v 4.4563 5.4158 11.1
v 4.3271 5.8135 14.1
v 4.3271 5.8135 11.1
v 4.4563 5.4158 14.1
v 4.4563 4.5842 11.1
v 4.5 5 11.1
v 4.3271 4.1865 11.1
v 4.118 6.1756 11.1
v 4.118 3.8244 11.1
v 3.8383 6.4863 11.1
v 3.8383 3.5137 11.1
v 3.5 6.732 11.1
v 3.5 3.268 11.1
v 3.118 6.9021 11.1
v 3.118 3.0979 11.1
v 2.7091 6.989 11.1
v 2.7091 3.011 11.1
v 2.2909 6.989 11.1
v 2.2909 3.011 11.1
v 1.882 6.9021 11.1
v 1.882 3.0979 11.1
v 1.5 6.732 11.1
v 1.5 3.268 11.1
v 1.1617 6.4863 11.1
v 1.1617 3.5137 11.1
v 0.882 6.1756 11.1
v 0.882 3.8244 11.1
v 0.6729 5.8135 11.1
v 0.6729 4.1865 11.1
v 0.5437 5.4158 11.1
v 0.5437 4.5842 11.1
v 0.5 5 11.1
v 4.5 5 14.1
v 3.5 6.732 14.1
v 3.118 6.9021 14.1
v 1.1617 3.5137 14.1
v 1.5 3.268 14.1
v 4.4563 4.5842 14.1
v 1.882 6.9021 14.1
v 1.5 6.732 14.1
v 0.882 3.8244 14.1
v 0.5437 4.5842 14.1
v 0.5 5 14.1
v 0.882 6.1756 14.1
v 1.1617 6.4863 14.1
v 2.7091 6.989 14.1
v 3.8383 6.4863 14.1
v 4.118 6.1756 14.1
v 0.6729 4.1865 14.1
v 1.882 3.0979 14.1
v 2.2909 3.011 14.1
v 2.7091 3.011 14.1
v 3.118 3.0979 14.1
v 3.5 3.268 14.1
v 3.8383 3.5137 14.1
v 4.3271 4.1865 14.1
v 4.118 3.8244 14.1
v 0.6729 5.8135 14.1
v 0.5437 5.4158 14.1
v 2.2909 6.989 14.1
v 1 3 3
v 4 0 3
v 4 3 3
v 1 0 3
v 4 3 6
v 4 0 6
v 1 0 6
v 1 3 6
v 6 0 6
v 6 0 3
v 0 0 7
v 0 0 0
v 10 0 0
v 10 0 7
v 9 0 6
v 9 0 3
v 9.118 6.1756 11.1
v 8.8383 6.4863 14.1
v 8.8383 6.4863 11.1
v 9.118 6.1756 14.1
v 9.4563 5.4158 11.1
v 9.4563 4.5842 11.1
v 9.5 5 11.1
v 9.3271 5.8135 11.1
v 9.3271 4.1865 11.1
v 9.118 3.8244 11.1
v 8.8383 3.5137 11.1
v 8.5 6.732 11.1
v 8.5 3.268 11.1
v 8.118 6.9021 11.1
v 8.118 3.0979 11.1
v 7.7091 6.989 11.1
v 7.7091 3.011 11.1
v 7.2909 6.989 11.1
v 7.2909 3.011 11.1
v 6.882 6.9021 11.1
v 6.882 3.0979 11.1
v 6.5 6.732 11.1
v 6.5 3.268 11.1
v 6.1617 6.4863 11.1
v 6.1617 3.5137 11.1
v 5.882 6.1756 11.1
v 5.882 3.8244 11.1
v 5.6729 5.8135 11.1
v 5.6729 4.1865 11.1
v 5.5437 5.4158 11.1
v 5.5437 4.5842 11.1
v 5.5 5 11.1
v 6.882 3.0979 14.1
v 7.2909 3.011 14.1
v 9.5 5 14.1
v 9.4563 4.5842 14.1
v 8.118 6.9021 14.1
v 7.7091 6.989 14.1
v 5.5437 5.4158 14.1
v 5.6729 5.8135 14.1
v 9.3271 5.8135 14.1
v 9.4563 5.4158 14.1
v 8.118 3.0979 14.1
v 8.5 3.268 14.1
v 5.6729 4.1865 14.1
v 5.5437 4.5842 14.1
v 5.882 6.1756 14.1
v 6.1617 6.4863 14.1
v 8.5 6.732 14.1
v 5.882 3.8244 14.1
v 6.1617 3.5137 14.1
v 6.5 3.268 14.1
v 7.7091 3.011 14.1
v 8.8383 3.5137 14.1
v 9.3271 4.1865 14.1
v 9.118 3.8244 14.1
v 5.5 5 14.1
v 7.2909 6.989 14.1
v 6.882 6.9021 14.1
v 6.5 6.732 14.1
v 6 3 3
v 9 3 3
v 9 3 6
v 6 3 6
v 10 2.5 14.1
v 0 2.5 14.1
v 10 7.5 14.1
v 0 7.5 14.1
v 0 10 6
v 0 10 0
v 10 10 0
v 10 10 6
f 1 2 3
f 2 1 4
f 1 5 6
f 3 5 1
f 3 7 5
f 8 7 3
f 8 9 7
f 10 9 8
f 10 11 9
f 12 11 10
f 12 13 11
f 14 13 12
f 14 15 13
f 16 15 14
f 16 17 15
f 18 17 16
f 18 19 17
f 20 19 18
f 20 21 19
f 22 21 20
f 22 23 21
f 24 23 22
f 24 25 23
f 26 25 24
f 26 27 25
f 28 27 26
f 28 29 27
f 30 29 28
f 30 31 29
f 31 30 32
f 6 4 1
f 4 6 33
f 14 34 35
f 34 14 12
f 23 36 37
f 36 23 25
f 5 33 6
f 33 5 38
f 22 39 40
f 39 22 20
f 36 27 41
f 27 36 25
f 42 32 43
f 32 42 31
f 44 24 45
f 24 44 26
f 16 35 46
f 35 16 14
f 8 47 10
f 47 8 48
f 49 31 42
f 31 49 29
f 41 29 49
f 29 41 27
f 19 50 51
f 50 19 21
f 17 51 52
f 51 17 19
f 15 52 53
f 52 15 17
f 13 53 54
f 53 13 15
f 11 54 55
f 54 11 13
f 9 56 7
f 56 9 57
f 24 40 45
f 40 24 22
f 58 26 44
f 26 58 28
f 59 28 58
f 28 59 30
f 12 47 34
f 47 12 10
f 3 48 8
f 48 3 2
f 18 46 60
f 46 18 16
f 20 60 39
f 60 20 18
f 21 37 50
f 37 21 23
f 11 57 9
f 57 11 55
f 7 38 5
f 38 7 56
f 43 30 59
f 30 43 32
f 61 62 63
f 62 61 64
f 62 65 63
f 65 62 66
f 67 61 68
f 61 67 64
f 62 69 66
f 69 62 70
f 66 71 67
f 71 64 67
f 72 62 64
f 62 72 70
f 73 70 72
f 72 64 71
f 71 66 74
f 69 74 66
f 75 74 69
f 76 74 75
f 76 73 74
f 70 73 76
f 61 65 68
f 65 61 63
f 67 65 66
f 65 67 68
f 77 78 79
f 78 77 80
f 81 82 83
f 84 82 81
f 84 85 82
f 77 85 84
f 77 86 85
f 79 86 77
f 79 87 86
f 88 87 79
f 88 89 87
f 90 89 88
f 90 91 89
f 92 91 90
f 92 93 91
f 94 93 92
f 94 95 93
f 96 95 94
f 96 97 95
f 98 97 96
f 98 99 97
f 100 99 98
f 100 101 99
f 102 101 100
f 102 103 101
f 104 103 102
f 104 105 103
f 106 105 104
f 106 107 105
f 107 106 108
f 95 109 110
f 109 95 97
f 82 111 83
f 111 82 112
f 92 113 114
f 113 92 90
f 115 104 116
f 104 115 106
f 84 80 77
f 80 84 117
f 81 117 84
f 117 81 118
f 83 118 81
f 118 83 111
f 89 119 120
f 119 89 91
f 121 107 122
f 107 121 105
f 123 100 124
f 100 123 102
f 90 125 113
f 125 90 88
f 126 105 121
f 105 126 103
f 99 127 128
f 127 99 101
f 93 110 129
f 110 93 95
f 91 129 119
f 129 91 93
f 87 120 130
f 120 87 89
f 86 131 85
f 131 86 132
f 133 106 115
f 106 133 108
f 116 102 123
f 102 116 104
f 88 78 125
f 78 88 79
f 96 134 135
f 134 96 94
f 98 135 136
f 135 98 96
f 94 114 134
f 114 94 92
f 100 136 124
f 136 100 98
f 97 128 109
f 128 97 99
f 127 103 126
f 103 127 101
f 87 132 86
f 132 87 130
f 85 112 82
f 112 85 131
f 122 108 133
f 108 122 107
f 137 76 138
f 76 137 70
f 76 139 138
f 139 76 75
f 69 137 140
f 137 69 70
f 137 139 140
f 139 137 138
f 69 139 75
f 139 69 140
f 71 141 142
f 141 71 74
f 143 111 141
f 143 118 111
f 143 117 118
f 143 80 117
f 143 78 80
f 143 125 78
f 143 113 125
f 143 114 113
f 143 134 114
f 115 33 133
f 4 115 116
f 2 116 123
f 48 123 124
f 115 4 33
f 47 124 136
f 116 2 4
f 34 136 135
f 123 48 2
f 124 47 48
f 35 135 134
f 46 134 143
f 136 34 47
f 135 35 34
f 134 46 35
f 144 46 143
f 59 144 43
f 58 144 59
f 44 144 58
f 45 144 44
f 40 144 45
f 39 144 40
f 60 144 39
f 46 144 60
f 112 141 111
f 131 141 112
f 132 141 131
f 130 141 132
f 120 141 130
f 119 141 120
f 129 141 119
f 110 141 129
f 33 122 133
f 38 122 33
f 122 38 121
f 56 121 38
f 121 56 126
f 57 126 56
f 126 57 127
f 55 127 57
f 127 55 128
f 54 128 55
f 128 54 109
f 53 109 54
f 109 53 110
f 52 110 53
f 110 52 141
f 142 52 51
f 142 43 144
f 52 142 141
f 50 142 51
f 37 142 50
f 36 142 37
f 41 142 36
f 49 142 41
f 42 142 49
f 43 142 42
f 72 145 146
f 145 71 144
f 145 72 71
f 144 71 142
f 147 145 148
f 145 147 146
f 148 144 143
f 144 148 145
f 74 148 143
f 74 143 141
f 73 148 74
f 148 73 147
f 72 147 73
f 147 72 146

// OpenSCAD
// Values taken from datasheet
// https://www.tme.eu/Document/2653ae3c3953812721c39bfb18cca9d2/dg128-5.0.pdf

CHASSIS_X_LENGTH = 10.0;
CHASSIS_Y_LENGTH = 10.0;
CHASSIS_Z_LENGTH = 14.1;

// Not very importnat values, no info in datasheet

CHASIS_TOP_EDGE_DEGREE = -10;
CHASIS_TOP_EDGE_Y_DISTANCE = 7;

SCREW_TO_EDGE_Y_DISTANCE = 5.0;

SCREW_Z_DEEPNES = 3.0;
SCREW_RADIUS = 2;
MOUNTING_CABLE_SIZE = 3;
MOUNTING_CABLE_TO_Y_OFFSET = 3;

// Increase steps in render to have quality circles
$fs=0.01;


module Chassis(){
    rotate([90,0,90])
        linear_extrude(height = CHASSIS_X_LENGTH, convexity = 10, twist = 0)  
            polygon([
                [0, 0], [0, 7], // front
                [2.5, CHASSIS_Z_LENGTH], [7.5, CHASSIS_Z_LENGTH], [CHASSIS_Y_LENGTH, 6], // top
                [CHASSIS_Y_LENGTH, 0]// rear 
            ]);
}

module screw(centerX){
    translate([0, 0, CHASSIS_Z_LENGTH-SCREW_Z_DEEPNES])
        linear_extrude(height = SCREW_Z_DEEPNES, convexity = 10, twist = 0)
                translate([centerX, SCREW_TO_EDGE_Y_DISTANCE, 0])
                    circle(r=SCREW_RADIUS);
}

module cableMounting(centerX){
    translate([centerX - MOUNTING_CABLE_SIZE/2, 0, MOUNTING_CABLE_TO_Y_OFFSET])
        linear_extrude(height = MOUNTING_CABLE_SIZE, convexity = 10, twist = 0)
            square([MOUNTING_CABLE_SIZE, MOUNTING_CABLE_SIZE]);
}

module Connector(){
    difference(){
        Chassis();

        // loop alow to modify component to have more than two connectors
        for(nodeXPlace = [2.5, 7.5])   
            union(){            
                screw(nodeXPlace);
                cableMounting(nodeXPlace);
            }
    }
}

Connector();
